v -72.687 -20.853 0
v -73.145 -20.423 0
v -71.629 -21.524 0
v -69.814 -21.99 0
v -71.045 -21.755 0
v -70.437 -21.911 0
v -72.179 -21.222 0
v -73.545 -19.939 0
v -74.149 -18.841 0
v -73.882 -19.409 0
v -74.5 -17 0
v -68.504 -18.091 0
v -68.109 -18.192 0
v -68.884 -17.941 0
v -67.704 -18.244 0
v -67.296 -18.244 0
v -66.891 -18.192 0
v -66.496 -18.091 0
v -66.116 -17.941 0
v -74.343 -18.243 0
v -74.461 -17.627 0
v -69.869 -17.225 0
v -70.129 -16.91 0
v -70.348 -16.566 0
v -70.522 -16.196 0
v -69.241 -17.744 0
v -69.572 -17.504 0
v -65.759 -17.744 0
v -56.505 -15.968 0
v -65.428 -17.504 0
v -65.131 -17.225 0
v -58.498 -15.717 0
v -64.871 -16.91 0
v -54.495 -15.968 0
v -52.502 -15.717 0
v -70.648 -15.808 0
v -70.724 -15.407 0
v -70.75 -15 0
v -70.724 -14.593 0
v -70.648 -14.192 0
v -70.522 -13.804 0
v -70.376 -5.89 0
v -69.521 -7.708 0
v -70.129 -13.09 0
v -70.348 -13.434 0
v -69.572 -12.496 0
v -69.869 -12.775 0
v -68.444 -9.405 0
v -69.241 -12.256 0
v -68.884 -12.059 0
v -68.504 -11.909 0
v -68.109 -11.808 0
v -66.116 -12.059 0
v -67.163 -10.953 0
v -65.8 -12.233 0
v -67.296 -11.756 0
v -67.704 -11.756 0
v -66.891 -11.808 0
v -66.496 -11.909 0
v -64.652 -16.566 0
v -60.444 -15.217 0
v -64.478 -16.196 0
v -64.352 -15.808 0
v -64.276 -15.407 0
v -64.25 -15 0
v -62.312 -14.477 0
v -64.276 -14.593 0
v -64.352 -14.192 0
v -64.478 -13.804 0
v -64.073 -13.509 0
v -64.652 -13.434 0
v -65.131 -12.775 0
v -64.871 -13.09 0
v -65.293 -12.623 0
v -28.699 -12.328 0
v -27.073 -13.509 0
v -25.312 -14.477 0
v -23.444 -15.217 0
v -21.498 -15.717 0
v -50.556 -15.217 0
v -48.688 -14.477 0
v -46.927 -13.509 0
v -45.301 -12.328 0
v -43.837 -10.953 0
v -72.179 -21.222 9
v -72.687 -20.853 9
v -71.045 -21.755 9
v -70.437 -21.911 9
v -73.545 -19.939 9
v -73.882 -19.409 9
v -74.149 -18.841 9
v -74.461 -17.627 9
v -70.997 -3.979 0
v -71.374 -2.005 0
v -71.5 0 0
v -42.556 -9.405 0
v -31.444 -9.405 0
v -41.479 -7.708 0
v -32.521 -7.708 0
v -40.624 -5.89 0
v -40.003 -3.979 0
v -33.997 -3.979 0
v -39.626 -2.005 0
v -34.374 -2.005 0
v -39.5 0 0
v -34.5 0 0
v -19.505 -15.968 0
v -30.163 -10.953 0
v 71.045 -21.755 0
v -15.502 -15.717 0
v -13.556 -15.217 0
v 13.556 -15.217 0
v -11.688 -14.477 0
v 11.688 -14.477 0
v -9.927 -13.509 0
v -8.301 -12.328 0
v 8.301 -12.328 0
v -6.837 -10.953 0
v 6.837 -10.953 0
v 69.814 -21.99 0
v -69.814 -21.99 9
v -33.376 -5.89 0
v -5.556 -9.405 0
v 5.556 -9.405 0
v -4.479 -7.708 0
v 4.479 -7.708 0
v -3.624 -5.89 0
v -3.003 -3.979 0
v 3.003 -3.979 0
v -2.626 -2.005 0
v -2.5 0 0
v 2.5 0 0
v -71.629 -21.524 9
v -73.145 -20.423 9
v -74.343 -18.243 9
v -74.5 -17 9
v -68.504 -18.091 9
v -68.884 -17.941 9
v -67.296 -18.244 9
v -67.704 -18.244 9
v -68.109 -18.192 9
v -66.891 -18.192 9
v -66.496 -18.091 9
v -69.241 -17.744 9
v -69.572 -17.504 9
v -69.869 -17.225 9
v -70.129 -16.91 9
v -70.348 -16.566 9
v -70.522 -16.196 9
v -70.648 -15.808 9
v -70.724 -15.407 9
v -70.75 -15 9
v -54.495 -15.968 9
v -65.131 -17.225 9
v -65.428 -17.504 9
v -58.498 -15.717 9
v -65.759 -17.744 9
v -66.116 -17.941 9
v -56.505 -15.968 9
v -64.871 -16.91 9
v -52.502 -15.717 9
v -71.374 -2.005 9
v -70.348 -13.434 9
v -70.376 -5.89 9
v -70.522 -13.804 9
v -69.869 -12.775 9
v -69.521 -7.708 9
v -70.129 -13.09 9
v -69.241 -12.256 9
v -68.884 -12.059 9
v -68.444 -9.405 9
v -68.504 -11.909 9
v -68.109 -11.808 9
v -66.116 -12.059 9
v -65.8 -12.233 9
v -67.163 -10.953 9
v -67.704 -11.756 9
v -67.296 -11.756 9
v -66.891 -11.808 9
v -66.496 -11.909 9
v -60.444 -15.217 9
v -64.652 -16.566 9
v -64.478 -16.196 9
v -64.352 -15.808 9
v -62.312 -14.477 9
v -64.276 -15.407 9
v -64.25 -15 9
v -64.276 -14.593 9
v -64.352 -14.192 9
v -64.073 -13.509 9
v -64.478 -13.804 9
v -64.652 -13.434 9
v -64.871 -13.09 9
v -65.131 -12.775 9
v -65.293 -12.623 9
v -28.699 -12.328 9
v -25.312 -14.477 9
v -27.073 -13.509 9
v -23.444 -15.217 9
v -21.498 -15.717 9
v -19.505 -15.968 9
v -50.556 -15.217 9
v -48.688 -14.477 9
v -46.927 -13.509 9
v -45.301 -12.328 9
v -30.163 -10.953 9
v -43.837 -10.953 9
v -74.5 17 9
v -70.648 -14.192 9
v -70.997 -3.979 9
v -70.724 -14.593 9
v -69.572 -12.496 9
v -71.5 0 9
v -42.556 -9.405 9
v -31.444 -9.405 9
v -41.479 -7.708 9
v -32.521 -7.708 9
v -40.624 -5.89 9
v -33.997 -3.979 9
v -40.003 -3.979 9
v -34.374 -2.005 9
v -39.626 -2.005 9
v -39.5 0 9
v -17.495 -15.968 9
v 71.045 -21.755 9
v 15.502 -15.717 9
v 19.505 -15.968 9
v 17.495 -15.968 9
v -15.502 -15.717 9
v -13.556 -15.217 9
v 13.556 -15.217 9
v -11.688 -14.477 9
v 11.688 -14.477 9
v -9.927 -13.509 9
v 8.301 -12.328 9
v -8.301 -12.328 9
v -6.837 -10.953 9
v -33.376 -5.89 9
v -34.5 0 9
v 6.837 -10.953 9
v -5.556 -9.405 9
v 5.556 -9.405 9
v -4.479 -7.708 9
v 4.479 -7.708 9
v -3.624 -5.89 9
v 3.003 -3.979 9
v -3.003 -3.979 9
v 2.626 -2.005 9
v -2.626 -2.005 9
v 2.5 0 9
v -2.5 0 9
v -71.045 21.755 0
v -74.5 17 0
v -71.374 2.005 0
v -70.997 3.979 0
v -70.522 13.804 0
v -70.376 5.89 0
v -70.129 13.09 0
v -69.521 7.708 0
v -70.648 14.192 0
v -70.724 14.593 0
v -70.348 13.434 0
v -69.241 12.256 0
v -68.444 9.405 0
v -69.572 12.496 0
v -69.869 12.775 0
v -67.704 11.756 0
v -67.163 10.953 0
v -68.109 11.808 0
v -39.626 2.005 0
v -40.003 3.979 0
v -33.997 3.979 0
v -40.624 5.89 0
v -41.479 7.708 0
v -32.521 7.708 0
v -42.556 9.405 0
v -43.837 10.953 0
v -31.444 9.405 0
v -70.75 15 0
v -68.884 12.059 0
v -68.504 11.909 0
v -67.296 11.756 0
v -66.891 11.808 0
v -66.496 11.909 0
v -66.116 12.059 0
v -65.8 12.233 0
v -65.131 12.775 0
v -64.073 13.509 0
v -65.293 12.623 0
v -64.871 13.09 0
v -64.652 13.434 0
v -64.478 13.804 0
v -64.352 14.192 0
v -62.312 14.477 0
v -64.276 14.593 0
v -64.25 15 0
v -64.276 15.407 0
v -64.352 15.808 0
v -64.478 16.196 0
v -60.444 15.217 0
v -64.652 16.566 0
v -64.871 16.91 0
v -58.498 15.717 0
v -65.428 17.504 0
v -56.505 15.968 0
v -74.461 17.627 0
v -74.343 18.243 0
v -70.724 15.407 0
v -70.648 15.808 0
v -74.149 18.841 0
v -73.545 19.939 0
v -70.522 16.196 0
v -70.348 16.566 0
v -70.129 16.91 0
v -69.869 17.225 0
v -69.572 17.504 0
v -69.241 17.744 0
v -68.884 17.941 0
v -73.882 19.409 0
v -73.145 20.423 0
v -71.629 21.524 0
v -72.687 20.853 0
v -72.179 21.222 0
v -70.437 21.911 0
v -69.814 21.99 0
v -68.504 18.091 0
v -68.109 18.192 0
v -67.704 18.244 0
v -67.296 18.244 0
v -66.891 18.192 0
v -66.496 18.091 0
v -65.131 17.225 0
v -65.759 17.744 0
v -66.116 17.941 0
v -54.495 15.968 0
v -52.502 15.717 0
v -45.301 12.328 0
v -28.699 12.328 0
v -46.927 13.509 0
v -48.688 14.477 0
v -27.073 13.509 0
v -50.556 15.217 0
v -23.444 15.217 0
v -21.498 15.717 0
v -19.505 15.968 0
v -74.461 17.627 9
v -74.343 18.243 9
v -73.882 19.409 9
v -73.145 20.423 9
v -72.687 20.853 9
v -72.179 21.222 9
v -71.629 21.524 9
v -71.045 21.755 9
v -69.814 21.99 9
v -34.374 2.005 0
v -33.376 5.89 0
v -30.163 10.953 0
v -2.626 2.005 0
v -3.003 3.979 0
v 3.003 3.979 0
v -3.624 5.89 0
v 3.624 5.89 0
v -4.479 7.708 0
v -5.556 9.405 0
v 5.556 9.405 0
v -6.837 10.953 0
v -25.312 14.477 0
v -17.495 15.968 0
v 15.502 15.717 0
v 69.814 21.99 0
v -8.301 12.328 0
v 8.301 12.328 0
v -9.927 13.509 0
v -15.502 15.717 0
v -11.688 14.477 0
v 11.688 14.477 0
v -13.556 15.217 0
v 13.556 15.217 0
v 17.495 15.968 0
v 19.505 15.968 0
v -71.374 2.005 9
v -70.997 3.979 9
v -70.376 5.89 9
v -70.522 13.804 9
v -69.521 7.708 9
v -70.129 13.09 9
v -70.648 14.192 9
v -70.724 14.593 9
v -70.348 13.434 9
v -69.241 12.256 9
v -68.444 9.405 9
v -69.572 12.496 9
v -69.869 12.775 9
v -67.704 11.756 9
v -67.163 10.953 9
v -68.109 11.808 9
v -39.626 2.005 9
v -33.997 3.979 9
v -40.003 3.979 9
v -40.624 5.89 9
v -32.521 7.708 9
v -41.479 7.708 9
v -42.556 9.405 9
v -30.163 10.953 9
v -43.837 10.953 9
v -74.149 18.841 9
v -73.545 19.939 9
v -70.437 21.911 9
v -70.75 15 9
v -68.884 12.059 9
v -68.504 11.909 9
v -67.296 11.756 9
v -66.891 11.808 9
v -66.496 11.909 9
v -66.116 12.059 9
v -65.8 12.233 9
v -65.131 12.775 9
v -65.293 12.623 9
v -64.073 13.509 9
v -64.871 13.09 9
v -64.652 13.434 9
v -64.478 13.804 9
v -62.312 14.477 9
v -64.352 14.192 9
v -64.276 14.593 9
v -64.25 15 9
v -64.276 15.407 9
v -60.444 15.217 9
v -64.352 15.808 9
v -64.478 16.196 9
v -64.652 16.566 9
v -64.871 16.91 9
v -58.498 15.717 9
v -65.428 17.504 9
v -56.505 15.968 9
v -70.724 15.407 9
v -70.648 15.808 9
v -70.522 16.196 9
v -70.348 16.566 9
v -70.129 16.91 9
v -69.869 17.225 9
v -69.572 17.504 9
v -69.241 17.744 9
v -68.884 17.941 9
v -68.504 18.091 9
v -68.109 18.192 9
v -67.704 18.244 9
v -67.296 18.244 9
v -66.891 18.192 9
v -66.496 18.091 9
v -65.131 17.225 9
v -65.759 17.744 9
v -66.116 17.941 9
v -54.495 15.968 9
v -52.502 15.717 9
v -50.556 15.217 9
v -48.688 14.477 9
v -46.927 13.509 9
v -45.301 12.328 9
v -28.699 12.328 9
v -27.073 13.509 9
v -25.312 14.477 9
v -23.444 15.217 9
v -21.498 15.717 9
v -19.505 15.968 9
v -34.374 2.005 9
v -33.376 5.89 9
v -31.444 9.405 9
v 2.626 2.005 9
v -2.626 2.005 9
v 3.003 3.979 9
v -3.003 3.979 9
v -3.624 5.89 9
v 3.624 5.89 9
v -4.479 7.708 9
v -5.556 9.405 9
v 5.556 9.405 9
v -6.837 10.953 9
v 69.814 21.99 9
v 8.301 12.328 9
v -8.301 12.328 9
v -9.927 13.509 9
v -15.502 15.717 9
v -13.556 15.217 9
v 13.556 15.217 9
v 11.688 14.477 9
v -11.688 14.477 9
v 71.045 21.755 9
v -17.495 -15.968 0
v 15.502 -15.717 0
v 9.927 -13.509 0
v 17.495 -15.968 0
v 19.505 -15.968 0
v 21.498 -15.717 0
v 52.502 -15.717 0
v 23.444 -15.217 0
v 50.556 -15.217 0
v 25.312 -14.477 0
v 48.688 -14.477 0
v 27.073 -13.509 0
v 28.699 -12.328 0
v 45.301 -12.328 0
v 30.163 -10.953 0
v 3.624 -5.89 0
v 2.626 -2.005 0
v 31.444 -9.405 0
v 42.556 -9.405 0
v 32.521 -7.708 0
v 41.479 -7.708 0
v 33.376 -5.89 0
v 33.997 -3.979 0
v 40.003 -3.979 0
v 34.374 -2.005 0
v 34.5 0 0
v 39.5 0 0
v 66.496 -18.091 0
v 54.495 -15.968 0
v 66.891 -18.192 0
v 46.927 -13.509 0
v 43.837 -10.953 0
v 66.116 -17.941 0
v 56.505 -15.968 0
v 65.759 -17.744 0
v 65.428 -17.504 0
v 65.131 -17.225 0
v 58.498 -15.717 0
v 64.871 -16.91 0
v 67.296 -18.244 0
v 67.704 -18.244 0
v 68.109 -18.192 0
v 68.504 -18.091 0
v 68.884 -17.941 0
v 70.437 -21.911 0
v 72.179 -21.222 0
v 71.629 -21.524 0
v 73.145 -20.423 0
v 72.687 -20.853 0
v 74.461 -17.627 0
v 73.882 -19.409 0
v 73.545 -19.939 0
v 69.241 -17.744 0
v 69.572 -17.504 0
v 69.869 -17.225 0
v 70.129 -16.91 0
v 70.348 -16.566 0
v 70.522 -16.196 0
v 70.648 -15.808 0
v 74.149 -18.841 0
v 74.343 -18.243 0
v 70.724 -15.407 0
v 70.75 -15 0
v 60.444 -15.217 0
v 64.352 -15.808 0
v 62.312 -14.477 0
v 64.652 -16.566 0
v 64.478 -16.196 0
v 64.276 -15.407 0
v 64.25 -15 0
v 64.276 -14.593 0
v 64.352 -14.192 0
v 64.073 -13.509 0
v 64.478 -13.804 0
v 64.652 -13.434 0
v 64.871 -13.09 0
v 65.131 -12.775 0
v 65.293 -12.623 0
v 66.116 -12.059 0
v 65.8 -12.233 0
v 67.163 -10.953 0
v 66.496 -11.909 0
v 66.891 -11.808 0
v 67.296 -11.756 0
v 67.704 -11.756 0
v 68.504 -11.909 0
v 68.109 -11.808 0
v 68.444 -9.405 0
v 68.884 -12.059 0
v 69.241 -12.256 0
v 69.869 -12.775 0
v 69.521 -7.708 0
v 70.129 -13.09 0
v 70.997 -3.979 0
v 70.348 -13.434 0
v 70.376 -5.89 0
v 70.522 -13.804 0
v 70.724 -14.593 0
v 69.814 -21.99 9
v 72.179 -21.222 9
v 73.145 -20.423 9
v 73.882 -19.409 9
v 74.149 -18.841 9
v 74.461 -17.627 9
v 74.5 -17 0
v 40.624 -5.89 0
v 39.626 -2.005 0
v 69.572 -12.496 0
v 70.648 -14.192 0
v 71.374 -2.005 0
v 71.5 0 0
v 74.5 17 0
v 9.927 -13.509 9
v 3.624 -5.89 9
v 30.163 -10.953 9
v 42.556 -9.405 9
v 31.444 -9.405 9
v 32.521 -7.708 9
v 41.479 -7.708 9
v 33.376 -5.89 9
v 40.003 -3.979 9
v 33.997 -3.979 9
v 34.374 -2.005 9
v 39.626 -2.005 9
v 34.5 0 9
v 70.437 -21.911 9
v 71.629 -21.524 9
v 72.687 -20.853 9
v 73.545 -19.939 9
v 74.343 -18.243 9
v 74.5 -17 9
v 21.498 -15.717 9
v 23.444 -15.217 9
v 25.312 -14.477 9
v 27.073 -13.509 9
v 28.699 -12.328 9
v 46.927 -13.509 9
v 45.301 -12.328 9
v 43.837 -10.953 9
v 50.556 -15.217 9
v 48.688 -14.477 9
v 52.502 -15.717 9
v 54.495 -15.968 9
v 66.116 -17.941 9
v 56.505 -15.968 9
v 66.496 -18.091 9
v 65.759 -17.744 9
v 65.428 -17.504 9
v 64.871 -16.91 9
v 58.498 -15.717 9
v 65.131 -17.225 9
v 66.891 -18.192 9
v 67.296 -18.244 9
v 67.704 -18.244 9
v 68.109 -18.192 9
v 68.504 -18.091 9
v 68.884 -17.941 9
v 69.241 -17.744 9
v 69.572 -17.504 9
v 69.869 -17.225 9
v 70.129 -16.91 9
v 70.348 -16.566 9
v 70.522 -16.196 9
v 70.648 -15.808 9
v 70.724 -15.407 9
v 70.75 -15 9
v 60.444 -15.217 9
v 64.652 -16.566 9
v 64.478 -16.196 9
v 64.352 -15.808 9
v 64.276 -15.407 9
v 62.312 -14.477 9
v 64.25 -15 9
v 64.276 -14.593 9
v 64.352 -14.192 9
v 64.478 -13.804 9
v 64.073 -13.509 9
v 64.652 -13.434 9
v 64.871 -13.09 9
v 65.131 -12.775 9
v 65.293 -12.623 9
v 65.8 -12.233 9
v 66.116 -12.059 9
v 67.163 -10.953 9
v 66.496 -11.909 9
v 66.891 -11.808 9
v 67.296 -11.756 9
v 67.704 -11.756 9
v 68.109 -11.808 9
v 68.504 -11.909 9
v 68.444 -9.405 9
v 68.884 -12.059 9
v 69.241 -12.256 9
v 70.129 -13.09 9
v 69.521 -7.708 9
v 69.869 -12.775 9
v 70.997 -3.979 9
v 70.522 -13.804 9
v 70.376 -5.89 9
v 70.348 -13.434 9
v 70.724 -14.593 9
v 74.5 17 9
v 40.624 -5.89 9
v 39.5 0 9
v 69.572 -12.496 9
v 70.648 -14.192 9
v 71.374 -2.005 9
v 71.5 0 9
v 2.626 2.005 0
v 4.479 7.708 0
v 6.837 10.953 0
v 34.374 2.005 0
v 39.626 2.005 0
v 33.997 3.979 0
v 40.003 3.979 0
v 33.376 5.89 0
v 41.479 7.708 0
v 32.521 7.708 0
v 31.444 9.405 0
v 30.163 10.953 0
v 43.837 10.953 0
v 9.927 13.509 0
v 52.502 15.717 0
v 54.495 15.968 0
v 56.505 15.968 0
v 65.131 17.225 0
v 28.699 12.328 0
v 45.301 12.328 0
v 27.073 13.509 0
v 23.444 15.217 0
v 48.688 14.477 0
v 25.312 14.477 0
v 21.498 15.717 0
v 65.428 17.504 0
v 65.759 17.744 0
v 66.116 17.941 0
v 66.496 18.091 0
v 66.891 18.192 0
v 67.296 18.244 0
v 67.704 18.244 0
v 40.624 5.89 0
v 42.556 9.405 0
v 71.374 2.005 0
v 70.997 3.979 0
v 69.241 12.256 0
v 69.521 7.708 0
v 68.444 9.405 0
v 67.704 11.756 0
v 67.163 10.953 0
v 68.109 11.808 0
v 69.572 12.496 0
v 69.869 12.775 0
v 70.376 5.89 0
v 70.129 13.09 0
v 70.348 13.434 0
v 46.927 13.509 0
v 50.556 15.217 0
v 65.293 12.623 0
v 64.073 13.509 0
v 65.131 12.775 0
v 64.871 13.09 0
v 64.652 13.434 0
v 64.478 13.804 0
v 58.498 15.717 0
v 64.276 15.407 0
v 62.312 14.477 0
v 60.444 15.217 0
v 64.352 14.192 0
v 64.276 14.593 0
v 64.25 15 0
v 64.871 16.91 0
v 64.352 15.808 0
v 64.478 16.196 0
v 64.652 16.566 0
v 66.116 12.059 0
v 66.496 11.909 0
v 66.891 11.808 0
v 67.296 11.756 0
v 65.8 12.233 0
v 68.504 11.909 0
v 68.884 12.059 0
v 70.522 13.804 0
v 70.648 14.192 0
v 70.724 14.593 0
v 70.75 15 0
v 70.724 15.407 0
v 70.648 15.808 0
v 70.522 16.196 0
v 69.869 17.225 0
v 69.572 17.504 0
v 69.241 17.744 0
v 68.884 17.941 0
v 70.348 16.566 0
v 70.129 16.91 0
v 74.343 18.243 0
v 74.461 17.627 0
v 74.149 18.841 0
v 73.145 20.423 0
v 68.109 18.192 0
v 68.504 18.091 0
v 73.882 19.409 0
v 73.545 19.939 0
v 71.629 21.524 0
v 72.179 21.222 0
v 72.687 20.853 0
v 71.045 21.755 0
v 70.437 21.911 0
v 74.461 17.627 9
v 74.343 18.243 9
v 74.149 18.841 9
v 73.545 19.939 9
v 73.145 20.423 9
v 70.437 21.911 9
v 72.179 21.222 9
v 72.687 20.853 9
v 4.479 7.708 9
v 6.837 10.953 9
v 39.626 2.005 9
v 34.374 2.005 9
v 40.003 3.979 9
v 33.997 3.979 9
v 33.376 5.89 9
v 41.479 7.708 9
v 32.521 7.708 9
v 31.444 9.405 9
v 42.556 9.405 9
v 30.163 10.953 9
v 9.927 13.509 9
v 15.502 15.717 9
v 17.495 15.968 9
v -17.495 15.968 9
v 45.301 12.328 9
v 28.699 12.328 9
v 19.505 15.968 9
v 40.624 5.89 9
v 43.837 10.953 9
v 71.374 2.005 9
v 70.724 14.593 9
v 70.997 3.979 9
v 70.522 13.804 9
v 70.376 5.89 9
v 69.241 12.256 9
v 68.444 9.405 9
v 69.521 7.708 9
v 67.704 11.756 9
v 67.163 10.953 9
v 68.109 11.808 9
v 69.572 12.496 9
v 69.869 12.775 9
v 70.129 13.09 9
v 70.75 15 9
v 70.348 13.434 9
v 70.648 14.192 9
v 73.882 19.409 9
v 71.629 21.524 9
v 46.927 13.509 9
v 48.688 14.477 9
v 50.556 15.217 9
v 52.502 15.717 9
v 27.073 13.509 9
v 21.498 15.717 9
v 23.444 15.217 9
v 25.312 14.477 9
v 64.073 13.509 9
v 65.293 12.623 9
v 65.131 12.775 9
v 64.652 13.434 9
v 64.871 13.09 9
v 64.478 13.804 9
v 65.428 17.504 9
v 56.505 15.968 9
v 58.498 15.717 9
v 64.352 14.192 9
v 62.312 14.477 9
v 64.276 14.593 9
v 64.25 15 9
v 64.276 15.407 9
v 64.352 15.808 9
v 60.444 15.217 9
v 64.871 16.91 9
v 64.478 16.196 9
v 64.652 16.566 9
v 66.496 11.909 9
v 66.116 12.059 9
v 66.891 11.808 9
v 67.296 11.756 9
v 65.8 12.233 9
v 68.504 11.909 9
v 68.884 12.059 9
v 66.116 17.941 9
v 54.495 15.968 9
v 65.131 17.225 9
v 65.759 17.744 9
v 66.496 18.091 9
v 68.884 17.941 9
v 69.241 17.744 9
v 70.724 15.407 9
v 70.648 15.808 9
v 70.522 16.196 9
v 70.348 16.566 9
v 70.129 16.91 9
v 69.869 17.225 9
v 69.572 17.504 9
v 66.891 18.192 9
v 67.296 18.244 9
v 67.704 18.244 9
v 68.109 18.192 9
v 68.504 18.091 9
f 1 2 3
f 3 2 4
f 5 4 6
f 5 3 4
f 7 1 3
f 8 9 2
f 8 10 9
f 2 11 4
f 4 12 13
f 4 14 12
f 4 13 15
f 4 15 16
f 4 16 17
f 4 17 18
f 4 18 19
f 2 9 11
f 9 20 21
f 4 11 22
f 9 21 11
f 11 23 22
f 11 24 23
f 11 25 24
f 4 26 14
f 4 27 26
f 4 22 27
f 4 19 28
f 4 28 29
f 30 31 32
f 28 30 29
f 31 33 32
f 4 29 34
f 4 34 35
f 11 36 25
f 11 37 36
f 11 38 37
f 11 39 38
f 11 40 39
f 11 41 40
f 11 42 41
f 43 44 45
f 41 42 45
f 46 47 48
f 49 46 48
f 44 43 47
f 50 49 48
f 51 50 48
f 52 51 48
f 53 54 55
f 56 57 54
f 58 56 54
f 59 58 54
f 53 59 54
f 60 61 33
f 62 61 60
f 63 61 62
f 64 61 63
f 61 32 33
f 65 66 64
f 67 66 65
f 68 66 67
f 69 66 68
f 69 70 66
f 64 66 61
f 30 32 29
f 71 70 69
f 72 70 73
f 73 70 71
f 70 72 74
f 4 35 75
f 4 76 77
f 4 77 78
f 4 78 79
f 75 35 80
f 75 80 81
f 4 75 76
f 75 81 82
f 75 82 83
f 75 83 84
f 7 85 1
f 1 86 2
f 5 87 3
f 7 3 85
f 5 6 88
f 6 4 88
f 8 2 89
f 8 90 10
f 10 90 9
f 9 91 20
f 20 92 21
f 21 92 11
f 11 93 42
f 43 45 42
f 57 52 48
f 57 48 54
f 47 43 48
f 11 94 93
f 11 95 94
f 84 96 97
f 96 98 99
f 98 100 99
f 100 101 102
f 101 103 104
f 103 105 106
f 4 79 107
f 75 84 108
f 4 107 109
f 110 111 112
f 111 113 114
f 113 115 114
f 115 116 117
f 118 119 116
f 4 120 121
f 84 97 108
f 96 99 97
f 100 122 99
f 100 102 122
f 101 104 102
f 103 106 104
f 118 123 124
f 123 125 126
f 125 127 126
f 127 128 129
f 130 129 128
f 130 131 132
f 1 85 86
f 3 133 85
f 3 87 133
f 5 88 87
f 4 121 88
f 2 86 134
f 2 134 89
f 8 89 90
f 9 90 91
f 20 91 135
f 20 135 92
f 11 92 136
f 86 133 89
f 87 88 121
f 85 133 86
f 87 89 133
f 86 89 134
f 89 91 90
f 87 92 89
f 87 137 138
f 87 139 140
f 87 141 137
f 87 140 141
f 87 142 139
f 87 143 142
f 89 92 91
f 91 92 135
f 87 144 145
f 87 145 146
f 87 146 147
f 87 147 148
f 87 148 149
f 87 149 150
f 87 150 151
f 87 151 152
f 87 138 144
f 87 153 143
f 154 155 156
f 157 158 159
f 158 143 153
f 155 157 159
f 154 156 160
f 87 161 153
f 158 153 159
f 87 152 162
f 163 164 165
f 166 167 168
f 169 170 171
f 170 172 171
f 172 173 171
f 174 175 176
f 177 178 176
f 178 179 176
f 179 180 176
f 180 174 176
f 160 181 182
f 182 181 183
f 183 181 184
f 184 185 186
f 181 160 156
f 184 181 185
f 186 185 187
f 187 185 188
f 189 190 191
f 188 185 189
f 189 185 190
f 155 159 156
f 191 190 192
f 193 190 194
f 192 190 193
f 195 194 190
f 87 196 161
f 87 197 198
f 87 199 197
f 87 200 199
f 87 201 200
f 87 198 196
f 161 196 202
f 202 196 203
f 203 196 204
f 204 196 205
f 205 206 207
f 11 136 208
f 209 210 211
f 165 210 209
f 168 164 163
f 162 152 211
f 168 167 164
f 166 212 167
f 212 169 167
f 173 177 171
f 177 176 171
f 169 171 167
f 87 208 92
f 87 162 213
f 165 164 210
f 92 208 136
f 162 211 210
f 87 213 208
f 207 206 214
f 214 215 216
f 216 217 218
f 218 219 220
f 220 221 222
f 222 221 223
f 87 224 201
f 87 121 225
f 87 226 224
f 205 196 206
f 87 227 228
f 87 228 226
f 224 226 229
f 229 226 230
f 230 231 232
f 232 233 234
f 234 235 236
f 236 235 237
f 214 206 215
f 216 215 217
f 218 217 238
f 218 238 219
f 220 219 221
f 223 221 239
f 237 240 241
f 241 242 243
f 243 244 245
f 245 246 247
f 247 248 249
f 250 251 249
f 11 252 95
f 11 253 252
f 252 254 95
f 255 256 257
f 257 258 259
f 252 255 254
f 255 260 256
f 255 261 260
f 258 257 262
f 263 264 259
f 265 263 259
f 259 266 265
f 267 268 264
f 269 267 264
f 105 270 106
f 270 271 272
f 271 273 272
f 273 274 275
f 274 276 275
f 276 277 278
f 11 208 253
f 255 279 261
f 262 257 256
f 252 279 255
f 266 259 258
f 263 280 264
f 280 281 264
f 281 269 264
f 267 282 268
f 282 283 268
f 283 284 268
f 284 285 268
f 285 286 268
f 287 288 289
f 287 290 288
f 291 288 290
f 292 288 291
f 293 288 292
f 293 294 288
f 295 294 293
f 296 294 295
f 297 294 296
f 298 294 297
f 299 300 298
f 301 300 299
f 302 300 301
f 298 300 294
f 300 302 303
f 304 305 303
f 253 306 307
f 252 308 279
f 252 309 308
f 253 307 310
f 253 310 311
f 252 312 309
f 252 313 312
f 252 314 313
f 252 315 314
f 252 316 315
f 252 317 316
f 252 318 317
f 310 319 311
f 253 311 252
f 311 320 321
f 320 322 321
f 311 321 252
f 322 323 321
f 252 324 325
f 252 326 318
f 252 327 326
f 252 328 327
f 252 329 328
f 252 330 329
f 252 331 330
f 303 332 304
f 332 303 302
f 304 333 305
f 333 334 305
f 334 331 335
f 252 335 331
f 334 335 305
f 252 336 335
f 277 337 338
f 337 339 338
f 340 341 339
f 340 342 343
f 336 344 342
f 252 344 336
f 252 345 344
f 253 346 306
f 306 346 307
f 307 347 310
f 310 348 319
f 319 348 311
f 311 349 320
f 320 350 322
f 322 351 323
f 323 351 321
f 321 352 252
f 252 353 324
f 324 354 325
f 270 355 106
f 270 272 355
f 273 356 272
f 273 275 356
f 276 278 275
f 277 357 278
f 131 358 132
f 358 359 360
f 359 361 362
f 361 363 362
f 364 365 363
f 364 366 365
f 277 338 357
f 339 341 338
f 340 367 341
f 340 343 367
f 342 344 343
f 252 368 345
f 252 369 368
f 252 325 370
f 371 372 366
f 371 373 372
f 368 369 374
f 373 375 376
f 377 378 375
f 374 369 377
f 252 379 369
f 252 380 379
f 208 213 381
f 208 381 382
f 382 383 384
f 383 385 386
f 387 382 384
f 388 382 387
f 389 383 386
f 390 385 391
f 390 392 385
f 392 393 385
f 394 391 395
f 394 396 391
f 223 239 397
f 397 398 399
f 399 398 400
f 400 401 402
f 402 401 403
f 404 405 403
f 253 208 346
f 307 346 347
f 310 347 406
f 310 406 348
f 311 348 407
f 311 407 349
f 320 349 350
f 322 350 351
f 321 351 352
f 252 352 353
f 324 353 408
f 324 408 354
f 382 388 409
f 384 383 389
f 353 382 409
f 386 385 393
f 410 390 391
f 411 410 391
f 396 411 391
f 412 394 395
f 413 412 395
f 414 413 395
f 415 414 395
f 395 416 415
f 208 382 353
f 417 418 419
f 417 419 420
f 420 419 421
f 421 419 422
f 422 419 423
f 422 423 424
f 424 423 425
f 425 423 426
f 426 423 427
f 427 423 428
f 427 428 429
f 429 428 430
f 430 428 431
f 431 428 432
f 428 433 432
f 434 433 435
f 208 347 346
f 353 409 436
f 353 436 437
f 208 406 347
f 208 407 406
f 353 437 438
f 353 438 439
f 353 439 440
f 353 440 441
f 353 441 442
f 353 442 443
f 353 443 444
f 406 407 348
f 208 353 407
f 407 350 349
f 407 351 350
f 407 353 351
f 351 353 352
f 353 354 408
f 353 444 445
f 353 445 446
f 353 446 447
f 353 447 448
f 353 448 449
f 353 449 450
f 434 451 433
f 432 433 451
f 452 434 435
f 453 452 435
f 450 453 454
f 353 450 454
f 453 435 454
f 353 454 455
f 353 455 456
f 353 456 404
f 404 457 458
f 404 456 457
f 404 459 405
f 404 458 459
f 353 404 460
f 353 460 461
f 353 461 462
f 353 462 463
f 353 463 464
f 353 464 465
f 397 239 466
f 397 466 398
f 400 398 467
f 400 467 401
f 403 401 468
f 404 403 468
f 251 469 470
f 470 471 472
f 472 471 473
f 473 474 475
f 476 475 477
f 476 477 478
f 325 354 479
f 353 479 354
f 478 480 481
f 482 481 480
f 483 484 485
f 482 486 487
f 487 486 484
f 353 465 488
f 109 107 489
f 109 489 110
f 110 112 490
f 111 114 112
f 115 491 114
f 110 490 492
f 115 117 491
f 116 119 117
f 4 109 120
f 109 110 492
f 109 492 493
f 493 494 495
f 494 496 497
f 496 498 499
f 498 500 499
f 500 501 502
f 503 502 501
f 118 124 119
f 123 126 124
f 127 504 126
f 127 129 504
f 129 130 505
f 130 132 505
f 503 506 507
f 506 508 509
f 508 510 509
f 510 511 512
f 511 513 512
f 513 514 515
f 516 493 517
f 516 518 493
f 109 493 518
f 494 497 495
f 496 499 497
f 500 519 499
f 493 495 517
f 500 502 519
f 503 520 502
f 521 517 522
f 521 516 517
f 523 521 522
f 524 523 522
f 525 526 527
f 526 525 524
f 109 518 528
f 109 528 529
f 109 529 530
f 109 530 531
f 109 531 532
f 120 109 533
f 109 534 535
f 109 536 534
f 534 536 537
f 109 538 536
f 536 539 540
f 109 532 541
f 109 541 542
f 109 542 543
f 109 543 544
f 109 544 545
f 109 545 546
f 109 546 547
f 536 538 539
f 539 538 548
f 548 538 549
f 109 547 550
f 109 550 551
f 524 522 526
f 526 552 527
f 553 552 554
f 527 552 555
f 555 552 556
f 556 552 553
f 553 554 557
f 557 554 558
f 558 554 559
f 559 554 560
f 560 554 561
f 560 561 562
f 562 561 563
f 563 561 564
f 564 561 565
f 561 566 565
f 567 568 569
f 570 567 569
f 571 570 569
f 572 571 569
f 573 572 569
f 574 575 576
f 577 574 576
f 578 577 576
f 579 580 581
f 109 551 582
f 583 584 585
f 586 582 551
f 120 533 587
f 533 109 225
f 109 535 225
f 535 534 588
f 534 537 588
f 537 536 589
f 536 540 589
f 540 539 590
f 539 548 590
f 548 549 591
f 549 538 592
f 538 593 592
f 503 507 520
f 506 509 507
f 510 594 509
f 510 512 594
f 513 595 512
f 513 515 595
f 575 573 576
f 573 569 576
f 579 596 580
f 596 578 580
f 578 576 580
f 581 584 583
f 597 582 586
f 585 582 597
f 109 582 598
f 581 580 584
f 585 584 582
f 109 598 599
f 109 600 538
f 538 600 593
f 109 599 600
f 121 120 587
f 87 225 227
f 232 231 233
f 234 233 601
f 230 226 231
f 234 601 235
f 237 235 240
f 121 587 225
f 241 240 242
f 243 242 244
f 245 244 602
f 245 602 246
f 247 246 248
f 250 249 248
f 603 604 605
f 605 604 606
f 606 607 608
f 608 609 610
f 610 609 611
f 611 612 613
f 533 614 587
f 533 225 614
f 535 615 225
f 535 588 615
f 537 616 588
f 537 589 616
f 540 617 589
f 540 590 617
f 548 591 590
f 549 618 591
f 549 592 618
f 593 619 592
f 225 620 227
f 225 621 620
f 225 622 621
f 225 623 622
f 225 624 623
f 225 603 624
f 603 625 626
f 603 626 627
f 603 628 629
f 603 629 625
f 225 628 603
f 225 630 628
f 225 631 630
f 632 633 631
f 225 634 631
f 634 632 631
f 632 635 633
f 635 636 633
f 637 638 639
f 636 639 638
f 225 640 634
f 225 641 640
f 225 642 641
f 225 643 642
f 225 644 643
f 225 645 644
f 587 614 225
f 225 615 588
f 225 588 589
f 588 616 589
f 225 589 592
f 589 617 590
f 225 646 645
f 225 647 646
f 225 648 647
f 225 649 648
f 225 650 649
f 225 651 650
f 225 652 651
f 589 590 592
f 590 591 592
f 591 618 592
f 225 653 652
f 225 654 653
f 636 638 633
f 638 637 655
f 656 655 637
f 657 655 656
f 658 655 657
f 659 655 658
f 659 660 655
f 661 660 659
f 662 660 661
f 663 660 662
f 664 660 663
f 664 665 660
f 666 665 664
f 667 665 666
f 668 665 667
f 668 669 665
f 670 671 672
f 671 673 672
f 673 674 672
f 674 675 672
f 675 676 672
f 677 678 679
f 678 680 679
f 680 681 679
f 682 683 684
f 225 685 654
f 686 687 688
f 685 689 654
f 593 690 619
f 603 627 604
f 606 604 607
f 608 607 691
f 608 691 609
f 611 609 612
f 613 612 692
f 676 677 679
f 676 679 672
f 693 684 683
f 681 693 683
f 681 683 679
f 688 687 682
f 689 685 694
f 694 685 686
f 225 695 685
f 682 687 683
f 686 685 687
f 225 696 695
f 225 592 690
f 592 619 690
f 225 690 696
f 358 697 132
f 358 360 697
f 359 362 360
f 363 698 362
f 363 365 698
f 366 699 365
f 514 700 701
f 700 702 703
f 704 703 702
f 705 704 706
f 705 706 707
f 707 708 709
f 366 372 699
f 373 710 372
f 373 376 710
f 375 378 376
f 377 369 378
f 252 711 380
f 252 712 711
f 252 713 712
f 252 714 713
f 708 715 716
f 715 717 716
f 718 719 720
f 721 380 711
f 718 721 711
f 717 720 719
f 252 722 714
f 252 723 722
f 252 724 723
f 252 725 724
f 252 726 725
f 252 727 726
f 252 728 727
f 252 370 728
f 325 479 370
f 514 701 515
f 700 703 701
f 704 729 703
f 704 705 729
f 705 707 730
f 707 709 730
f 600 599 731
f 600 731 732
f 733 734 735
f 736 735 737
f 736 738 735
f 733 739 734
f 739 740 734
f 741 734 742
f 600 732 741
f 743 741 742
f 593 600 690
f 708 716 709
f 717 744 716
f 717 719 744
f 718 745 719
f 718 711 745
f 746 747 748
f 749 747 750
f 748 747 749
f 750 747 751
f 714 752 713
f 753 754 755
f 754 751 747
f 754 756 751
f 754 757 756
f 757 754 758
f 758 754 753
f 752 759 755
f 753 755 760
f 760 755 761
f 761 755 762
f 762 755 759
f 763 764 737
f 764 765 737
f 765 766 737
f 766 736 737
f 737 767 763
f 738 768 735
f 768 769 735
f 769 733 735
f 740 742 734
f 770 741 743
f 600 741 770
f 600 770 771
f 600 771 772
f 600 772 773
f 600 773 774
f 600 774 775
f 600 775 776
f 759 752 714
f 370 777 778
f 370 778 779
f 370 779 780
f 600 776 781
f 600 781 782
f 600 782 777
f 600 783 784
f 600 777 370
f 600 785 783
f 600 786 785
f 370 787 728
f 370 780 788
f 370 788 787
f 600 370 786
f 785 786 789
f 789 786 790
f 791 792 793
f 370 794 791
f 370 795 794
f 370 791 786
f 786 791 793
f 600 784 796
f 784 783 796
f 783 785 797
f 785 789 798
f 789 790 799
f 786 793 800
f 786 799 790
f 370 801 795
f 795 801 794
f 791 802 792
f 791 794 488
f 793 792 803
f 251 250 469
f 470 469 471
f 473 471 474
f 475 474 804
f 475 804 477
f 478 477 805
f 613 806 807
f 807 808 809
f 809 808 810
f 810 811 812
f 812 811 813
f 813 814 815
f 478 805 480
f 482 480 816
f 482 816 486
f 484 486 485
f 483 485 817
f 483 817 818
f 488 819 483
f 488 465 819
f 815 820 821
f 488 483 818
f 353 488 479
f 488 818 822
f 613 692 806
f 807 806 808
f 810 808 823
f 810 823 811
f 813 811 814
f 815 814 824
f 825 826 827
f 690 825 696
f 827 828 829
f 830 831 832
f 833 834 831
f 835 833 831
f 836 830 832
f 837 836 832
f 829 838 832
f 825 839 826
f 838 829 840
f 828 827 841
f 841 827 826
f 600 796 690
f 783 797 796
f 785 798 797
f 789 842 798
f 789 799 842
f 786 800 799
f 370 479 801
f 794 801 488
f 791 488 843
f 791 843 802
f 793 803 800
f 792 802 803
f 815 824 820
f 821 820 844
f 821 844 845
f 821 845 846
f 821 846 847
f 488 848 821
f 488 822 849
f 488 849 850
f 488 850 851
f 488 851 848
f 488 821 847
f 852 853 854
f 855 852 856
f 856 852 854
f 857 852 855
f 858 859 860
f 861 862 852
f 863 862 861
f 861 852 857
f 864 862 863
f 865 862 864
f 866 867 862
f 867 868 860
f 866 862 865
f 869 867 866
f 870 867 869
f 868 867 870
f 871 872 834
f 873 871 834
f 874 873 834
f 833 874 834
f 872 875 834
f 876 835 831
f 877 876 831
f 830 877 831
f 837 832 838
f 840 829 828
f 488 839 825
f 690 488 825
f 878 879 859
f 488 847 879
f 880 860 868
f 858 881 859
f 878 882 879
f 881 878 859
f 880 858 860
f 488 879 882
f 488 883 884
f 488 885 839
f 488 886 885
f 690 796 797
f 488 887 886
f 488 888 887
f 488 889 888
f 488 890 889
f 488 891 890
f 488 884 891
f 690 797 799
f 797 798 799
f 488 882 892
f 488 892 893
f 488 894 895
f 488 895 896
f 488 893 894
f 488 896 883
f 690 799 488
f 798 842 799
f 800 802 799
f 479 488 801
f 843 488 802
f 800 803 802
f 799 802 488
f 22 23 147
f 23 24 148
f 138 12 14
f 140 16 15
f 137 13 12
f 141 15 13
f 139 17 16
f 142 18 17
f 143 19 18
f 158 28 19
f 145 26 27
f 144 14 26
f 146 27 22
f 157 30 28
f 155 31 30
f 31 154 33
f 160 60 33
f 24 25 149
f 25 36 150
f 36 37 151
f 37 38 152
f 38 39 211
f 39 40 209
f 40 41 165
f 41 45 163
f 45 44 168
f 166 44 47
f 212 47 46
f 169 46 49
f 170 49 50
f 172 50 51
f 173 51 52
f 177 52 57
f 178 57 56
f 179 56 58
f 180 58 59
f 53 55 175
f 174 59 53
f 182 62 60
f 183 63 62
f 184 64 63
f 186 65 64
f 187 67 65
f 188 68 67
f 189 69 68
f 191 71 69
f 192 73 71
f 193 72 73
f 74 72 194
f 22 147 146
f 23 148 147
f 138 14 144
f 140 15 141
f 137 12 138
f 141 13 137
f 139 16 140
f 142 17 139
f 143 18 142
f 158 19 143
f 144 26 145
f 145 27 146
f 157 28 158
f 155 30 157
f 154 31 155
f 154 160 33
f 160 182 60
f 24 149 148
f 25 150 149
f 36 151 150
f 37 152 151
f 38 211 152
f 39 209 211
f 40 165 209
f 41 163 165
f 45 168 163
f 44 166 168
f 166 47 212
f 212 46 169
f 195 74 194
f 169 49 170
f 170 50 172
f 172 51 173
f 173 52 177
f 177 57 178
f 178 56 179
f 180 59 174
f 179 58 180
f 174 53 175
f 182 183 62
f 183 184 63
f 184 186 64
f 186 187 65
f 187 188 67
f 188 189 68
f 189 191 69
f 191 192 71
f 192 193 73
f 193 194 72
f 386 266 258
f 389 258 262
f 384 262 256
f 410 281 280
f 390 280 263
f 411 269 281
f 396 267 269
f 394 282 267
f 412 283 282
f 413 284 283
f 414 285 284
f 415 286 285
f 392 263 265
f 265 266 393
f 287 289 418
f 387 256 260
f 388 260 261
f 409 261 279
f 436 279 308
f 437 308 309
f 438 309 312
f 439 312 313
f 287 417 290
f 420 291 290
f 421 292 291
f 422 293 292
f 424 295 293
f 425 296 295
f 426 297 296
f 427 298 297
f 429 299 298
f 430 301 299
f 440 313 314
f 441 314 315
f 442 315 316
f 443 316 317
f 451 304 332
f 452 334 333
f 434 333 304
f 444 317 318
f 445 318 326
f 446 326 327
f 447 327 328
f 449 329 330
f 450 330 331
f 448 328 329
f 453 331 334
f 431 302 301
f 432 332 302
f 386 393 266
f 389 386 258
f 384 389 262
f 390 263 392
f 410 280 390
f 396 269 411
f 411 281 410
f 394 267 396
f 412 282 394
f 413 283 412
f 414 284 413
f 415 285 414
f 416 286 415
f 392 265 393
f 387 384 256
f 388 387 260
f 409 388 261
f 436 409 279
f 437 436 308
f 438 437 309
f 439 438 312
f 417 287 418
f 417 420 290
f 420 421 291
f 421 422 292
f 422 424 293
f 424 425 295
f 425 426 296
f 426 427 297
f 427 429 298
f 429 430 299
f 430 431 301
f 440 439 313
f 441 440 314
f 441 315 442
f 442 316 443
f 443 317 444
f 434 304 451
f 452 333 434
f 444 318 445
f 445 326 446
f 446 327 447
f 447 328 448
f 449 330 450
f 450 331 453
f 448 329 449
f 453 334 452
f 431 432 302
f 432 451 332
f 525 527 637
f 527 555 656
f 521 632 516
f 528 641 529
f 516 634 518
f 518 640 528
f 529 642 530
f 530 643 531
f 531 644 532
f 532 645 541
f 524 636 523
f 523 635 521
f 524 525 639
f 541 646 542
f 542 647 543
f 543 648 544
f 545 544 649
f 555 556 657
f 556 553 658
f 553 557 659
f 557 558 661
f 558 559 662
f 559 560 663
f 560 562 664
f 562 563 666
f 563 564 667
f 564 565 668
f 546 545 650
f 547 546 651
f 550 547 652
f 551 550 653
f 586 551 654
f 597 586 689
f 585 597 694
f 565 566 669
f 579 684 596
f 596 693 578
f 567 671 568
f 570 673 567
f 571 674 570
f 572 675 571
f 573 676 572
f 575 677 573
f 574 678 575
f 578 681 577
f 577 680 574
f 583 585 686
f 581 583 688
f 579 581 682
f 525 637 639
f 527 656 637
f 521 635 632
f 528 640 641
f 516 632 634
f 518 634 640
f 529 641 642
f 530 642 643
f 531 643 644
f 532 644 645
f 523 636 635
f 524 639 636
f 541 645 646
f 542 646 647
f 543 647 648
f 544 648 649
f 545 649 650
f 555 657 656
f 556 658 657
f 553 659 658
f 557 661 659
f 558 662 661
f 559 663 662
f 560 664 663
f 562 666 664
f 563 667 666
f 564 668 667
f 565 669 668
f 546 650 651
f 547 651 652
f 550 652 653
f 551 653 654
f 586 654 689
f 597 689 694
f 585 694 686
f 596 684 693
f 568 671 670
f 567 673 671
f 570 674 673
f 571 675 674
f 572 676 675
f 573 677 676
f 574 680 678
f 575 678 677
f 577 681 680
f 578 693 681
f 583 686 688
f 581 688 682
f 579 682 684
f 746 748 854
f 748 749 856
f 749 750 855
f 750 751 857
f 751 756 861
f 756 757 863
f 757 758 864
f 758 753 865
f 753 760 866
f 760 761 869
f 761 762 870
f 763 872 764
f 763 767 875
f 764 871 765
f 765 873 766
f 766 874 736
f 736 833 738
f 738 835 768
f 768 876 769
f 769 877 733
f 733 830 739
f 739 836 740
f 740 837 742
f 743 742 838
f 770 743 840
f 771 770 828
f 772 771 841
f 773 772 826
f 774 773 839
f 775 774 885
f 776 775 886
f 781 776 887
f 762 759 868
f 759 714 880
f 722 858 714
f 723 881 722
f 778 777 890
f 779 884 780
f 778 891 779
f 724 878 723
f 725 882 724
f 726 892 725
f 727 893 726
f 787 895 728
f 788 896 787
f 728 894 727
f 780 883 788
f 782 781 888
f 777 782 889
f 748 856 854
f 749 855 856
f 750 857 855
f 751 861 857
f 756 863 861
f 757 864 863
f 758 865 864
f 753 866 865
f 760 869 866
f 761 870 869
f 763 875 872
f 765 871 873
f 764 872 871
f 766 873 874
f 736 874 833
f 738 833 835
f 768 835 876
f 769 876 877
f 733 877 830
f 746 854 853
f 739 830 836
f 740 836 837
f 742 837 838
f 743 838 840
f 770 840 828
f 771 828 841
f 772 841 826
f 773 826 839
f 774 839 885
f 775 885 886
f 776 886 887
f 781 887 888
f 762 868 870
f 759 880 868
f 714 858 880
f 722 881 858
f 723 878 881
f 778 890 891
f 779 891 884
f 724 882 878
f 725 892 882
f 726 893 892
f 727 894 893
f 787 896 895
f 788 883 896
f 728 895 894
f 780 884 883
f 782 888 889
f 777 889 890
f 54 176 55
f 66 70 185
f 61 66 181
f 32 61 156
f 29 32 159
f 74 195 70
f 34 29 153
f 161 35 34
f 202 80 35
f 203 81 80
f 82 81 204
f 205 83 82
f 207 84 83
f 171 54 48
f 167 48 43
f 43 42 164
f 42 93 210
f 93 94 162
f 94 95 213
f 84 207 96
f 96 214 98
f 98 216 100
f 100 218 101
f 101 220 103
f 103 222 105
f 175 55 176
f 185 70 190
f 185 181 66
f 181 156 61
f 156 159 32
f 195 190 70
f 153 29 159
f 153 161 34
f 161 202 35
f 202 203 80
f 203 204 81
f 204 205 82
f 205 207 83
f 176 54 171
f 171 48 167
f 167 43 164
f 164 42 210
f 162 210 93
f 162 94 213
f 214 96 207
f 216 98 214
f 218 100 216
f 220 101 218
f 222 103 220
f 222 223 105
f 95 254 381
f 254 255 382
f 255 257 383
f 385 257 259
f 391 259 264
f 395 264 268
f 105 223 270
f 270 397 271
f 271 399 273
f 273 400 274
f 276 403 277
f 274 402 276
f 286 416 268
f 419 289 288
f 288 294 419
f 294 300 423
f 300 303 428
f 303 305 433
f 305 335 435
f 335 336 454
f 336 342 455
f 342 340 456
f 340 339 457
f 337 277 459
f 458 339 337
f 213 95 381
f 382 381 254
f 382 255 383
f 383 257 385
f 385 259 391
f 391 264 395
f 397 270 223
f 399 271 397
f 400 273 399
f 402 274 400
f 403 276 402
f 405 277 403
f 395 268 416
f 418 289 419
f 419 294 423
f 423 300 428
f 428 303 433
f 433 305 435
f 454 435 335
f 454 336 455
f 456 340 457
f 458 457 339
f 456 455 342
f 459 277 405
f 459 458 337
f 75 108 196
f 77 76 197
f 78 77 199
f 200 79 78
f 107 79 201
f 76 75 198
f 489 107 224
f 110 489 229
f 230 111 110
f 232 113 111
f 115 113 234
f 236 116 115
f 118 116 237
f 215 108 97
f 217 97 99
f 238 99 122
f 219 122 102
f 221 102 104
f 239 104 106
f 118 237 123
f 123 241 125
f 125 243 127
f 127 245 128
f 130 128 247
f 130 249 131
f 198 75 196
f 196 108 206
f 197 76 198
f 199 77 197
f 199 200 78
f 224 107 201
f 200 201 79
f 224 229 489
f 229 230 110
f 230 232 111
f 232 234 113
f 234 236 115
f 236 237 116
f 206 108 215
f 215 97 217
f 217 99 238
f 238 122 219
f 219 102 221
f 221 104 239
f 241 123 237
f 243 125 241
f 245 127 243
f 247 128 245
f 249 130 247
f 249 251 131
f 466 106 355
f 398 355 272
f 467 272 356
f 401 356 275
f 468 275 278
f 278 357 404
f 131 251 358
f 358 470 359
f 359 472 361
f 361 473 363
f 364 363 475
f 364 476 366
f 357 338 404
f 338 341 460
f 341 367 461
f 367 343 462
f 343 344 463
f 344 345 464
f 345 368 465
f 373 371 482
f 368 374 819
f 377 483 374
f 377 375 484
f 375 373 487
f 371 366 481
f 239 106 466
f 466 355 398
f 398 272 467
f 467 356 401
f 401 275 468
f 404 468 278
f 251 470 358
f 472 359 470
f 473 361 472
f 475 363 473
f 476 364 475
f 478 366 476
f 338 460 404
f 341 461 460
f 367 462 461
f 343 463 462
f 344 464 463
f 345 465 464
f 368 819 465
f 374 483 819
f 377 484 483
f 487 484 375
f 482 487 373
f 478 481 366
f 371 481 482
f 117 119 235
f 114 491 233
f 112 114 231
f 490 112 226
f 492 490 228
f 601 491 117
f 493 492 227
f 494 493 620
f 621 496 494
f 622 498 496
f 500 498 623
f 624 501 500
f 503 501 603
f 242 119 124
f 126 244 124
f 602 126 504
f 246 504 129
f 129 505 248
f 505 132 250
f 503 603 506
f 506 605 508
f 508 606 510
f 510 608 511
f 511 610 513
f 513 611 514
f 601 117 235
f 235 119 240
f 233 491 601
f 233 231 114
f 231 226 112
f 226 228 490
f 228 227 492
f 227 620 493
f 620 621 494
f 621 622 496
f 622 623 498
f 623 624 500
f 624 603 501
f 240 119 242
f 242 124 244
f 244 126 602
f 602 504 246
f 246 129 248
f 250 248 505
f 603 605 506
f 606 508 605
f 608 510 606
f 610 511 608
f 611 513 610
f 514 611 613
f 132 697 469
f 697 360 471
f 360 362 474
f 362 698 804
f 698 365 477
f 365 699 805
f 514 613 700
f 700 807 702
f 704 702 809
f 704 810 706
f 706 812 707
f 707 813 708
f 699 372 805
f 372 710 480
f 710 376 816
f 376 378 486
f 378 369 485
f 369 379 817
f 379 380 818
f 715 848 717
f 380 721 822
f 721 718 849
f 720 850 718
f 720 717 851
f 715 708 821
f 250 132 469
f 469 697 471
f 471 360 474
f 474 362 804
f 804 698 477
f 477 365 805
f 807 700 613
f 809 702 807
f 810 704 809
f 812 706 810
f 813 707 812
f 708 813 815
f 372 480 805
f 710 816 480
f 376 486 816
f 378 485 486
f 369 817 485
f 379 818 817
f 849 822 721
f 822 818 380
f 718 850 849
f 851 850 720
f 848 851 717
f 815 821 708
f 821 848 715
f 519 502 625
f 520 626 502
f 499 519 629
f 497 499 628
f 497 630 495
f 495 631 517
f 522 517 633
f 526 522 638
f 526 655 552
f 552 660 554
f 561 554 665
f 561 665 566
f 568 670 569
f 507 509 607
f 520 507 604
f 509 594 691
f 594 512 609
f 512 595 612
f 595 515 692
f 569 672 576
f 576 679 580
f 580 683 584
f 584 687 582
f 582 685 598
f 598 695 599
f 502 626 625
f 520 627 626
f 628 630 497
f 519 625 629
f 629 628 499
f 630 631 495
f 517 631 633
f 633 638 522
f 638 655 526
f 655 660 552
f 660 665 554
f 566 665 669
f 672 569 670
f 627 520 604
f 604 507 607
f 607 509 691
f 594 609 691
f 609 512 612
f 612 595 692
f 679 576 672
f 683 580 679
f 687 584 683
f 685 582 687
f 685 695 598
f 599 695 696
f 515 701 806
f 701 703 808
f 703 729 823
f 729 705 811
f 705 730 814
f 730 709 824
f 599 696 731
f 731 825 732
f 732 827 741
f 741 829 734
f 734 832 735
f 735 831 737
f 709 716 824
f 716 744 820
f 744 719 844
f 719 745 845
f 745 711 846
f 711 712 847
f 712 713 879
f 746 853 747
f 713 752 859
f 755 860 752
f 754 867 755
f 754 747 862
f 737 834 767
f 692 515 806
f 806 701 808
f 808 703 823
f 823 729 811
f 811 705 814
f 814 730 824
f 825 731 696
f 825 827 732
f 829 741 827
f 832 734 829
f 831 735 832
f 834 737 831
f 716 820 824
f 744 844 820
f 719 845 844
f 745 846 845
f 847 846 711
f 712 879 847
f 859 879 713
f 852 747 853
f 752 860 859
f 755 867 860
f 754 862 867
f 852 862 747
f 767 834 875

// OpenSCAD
$fn = 50;

difference() {
	union() {
		hull() {
			translate(v = [-69.5, 17.0, 0]) {
				cylinder(h = 9, r = 5);
			}
			translate(v = [69.5, 17.0, 0]) {
				cylinder(h = 9, r = 5);
			}
			translate(v = [-69.5, -17.0, 0]) {
				cylinder(h = 9, r = 5);
			}
			translate(v = [69.5, -17.0, 0]) {
				cylinder(h = 9, r = 5);
			}
		}
	}
	union() {
		translate(v = [-67.5, -15.0, -100.0]) {
			cylinder(h = 200, r = 3.25);
		}
		translate(v = [-67.5, 15.0, -100.0]) {
			cylinder(h = 200, r = 3.25);
		}
		translate(v = [67.5, -15.0, -100.0]) {
			cylinder(h = 200, r = 3.25);
		}
		translate(v = [67.5, 15.0, -100.0]) {
			cylinder(h = 200, r = 3.25);
		}
		translate(v = [-67.5, -15.0, -100.0]) {
			cylinder(h = 200, r = 1.8);
		}
		translate(v = [-67.5, 15.0, -100.0]) {
			cylinder(h = 200, r = 1.8);
		}
		translate(v = [67.5, -15.0, -100.0]) {
			cylinder(h = 200, r = 1.8);
		}
		translate(v = [67.5, 15.0, -100.0]) {
			cylinder(h = 200, r = 1.8);
		}
		translate(v = [-55.5, 0, 0.0]) {
			cylinder(h = 9, r = 16.0);
		}
		translate(v = [-18.5, 0, 0.0]) {
			cylinder(h = 9, r = 16.0);
		}
		translate(v = [18.5, 0, 0.0]) {
			cylinder(h = 9, r = 16.0);
		}
		translate(v = [55.5, 0, 0.0]) {
			cylinder(h = 9, r = 16.0);
		}
	}
}
